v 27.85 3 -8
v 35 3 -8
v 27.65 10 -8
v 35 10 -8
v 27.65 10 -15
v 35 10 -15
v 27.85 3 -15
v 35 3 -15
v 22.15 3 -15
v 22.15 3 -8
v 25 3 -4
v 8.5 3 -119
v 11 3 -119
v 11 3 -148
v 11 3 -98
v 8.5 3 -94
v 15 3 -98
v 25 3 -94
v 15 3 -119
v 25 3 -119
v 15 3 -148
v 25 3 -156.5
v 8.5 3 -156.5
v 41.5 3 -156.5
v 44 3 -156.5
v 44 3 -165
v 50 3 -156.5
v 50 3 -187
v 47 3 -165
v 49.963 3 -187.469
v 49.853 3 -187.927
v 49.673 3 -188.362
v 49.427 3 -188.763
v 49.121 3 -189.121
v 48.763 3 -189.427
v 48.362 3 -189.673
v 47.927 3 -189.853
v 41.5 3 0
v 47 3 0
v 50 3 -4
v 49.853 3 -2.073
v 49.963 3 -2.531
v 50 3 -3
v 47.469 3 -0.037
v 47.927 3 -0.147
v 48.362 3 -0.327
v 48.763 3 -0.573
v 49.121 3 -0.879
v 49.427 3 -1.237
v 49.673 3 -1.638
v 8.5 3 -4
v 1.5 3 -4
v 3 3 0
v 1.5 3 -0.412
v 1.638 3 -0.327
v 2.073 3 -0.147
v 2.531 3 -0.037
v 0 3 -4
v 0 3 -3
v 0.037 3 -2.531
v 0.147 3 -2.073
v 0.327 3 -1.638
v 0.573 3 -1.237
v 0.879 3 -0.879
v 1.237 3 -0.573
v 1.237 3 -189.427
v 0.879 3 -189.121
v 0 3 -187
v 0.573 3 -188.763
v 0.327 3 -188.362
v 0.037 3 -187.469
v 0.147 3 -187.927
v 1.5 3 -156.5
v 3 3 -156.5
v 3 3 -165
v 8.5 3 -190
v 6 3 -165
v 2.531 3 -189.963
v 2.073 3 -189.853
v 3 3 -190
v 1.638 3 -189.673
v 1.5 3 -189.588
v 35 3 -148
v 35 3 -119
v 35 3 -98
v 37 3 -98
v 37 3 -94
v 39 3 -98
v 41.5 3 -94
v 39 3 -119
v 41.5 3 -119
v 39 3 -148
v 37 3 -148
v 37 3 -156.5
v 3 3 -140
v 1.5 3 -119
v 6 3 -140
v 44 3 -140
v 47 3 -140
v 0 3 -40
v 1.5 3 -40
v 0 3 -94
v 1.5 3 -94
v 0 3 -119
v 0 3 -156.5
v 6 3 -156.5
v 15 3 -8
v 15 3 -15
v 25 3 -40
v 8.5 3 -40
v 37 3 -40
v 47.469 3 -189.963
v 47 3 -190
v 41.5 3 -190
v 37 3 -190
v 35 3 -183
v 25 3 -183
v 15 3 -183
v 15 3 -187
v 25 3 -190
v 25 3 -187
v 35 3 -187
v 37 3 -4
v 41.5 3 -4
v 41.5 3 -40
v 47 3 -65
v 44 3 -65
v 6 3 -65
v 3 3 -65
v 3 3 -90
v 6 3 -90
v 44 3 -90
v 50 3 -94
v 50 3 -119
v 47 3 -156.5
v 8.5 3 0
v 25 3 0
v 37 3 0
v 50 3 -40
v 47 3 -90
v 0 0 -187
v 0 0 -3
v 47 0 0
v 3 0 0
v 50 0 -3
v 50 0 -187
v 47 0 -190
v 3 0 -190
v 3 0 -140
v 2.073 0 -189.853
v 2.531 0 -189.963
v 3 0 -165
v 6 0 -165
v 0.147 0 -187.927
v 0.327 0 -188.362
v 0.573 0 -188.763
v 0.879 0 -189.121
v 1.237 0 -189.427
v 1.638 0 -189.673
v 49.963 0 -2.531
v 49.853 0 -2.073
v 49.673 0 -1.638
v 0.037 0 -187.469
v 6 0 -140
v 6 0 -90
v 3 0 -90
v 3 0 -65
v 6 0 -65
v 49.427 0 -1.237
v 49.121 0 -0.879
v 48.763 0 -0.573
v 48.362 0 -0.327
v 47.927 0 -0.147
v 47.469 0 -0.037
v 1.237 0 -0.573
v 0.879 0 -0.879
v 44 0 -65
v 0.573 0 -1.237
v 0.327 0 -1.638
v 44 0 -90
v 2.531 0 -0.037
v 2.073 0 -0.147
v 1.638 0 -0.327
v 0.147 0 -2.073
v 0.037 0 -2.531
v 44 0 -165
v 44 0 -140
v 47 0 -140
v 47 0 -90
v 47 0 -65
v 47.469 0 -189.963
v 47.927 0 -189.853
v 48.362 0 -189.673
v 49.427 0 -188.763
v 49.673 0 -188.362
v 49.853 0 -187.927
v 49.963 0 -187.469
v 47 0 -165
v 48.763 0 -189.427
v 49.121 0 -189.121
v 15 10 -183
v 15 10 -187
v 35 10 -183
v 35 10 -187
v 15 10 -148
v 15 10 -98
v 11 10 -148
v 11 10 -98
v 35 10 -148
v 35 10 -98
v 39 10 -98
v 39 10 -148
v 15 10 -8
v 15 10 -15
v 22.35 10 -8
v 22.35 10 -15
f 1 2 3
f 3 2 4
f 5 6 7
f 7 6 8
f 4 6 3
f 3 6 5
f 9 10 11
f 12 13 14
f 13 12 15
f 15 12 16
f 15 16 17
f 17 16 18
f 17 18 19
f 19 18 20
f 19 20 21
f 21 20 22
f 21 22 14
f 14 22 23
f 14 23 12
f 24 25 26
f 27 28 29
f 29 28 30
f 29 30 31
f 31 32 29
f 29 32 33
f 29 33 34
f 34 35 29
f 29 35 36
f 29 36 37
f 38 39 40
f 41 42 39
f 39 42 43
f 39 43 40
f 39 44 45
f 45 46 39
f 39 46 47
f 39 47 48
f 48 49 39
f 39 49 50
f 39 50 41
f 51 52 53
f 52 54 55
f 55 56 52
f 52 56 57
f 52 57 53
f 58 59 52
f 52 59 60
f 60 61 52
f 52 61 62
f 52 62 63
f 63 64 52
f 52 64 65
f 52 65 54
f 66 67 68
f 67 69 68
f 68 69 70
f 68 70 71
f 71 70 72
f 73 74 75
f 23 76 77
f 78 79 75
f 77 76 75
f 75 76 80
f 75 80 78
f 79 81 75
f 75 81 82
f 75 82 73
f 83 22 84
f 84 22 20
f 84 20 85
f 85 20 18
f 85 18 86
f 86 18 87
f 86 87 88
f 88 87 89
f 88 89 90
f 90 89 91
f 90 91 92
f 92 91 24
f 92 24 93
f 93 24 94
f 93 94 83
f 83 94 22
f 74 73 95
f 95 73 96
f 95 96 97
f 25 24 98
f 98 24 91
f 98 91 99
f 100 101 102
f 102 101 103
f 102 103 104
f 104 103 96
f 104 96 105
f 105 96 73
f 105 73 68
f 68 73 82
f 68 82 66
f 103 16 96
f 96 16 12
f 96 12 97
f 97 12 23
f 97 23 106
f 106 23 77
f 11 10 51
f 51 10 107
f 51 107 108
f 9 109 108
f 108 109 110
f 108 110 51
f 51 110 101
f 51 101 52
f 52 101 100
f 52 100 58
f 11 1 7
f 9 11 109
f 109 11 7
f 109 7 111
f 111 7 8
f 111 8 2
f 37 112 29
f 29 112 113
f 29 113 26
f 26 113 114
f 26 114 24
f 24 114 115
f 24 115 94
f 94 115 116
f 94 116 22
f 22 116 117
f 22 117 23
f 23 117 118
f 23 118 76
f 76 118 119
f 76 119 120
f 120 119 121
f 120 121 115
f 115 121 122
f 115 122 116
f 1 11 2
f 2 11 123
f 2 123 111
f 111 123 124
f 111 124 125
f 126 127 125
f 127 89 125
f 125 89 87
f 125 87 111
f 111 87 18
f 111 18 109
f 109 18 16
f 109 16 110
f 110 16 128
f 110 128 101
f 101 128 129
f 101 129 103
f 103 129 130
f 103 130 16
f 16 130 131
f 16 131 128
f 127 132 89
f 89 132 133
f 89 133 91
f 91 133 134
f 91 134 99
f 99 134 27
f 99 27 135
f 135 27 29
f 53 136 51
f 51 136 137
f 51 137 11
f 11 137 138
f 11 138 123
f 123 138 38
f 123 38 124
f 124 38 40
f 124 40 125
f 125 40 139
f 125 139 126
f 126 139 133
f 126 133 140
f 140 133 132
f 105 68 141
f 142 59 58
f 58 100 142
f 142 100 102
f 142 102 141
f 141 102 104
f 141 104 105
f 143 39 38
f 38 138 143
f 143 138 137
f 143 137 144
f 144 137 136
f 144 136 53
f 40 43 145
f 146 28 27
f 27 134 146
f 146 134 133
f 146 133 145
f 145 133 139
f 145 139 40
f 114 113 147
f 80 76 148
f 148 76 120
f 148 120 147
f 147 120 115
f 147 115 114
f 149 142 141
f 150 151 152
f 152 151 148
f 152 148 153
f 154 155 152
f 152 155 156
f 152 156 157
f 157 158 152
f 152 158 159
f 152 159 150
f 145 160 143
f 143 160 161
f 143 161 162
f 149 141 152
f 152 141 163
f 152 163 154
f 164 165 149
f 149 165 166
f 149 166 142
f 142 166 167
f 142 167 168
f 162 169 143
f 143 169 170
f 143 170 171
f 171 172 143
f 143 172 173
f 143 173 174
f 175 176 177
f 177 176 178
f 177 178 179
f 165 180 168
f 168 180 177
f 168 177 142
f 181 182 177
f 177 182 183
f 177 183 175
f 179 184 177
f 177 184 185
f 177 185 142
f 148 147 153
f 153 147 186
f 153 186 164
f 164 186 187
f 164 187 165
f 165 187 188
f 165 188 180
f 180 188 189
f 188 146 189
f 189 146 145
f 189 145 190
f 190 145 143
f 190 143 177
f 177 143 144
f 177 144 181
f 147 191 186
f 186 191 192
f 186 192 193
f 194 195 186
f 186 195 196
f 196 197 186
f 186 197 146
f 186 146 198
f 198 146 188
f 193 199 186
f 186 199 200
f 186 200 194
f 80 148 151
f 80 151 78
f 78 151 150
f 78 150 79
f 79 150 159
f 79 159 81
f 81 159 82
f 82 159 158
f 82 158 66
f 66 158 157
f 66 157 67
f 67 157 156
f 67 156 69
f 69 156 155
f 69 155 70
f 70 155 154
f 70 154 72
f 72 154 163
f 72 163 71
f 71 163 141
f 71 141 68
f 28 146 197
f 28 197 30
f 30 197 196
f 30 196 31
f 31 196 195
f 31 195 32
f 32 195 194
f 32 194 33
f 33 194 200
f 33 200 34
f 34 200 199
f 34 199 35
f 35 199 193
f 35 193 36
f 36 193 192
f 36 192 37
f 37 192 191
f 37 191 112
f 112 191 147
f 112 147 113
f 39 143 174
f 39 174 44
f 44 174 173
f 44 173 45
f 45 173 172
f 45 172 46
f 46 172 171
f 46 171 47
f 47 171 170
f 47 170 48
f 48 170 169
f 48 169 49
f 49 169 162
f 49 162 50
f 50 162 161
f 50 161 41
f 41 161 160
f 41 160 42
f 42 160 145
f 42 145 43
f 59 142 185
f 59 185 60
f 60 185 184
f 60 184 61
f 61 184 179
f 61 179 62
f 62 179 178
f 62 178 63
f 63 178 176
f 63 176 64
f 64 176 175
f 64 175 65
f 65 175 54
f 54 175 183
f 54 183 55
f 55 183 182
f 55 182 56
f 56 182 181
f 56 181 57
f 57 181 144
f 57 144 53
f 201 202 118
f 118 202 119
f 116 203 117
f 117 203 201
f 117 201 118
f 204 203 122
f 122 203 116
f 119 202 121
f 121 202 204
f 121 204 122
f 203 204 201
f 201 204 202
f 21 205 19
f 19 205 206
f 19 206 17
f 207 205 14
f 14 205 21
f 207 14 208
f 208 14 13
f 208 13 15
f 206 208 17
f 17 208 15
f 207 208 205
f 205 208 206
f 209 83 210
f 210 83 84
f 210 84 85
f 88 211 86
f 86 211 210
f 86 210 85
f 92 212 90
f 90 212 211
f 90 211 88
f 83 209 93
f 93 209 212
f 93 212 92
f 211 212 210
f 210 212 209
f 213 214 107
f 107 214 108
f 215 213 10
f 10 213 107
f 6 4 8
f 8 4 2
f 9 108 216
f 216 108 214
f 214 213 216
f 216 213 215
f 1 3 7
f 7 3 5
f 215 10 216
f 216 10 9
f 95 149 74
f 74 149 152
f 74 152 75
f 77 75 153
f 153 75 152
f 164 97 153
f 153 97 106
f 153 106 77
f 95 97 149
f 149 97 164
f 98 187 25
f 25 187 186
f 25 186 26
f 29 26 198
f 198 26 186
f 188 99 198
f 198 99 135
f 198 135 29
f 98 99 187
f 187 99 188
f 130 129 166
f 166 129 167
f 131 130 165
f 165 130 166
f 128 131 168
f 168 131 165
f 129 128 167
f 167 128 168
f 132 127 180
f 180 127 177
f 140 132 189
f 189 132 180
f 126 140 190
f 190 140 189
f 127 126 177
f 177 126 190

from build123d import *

# Parameters (mm, degrees)
SKETCH1_W           = 50
SKETCH1_H           = 190
BOSS_EXTRUDE1_DEPTH = 3
FILLET1_R           = 3
SKETCH2_W           = 20
SKETCH2_H           = 4
SKETCH2_W_2         = 4
SKETCH2_H_2         = 50
BOSS_EXTRUDE2_DEPTH = 7
SKETCH3_W           = 20
SKETCH3_H           = 7
BOSS_EXTRUDE3_DEPTH = 7
CUT_EXTRUDE1_DEPTH  = 7
SKETCH6_W           = 3
SKETCH6_H           = 25
CUT_EXTRUDE2_DEPTH  = 7


with BuildPart() as part:
    # Sketch1 → Boss-Extrude1 (new body)
    with BuildSketch(Plane(origin=(0, 0, 0), x_dir=(1, 0, 0), z_dir=(0, 1, 0))):
        with Locations((25, 95)):
            Rectangle(SKETCH1_W, SKETCH1_H)
    extrude(amount=BOSS_EXTRUDE1_DEPTH)

    # Fillet1
    fillet1_edges = [part.edges().sort_by_distance(p)[0] for p in [
        (0, 1.5, -190),
        (50, 1.5, -190),
        (50, 1.5, 0),
        (0, 1.5, 0),
    ]]
    fillet(fillet1_edges, radius=FILLET1_R)

    # Sketch2 → Boss-Extrude2 (add)
    with BuildSketch(Plane(origin=(0, 3, 0), x_dir=(1, 0, 0), z_dir=(0, 1, 0))):
        with Locations((25, 185)):
            Rectangle(SKETCH2_W, SKETCH2_H)
        with Locations((13, 123)):
            Rectangle(SKETCH2_W_2, SKETCH2_H_2)
        with Locations((37, 123)):
            Rectangle(SKETCH2_W_2, SKETCH2_H_2)
    extrude(amount=BOSS_EXTRUDE2_DEPTH)

    # Sketch3 → Boss-Extrude3 (add)
    with BuildSketch(Plane(origin=(0, 3, 0), x_dir=(1, 0, 0), z_dir=(0, 1, 0))):
        with Locations((25, 11.5)):
            Rectangle(SKETCH3_W, SKETCH3_H)
    extrude(amount=BOSS_EXTRUDE3_DEPTH)

    # Sketch5 → Cut-Extrude1 (cut)
    with BuildSketch(Plane(origin=(0, 0, -15), x_dir=(-1, 0, 0), z_dir=(0, 0, -1))):
        Polygon((-22.15, 3), (-22.35, 10), (-27.65, 10), (-27.85, 3), align=None)
    extrude(amount=-CUT_EXTRUDE1_DEPTH, mode=Mode.SUBTRACT)

    # Sketch6 → Cut-Extrude2 (cut)
    with BuildSketch(Plane(origin=(0, 3, 0), x_dir=(1, 0, 0), z_dir=(0, 1, 0))):
        with Locations((4.5, 152.5)):
            Rectangle(SKETCH6_W, SKETCH6_H)
        with Locations((45.5, 152.5)):
            Rectangle(SKETCH6_W, SKETCH6_H)
        with Locations((4.5, 77.5)):
            Rectangle(SKETCH6_W, SKETCH6_H)
        with Locations((45.5, 77.5)):
            Rectangle(SKETCH6_W, SKETCH6_H)
    extrude(amount=-CUT_EXTRUDE2_DEPTH, mode=Mode.SUBTRACT)


solid = part.part
